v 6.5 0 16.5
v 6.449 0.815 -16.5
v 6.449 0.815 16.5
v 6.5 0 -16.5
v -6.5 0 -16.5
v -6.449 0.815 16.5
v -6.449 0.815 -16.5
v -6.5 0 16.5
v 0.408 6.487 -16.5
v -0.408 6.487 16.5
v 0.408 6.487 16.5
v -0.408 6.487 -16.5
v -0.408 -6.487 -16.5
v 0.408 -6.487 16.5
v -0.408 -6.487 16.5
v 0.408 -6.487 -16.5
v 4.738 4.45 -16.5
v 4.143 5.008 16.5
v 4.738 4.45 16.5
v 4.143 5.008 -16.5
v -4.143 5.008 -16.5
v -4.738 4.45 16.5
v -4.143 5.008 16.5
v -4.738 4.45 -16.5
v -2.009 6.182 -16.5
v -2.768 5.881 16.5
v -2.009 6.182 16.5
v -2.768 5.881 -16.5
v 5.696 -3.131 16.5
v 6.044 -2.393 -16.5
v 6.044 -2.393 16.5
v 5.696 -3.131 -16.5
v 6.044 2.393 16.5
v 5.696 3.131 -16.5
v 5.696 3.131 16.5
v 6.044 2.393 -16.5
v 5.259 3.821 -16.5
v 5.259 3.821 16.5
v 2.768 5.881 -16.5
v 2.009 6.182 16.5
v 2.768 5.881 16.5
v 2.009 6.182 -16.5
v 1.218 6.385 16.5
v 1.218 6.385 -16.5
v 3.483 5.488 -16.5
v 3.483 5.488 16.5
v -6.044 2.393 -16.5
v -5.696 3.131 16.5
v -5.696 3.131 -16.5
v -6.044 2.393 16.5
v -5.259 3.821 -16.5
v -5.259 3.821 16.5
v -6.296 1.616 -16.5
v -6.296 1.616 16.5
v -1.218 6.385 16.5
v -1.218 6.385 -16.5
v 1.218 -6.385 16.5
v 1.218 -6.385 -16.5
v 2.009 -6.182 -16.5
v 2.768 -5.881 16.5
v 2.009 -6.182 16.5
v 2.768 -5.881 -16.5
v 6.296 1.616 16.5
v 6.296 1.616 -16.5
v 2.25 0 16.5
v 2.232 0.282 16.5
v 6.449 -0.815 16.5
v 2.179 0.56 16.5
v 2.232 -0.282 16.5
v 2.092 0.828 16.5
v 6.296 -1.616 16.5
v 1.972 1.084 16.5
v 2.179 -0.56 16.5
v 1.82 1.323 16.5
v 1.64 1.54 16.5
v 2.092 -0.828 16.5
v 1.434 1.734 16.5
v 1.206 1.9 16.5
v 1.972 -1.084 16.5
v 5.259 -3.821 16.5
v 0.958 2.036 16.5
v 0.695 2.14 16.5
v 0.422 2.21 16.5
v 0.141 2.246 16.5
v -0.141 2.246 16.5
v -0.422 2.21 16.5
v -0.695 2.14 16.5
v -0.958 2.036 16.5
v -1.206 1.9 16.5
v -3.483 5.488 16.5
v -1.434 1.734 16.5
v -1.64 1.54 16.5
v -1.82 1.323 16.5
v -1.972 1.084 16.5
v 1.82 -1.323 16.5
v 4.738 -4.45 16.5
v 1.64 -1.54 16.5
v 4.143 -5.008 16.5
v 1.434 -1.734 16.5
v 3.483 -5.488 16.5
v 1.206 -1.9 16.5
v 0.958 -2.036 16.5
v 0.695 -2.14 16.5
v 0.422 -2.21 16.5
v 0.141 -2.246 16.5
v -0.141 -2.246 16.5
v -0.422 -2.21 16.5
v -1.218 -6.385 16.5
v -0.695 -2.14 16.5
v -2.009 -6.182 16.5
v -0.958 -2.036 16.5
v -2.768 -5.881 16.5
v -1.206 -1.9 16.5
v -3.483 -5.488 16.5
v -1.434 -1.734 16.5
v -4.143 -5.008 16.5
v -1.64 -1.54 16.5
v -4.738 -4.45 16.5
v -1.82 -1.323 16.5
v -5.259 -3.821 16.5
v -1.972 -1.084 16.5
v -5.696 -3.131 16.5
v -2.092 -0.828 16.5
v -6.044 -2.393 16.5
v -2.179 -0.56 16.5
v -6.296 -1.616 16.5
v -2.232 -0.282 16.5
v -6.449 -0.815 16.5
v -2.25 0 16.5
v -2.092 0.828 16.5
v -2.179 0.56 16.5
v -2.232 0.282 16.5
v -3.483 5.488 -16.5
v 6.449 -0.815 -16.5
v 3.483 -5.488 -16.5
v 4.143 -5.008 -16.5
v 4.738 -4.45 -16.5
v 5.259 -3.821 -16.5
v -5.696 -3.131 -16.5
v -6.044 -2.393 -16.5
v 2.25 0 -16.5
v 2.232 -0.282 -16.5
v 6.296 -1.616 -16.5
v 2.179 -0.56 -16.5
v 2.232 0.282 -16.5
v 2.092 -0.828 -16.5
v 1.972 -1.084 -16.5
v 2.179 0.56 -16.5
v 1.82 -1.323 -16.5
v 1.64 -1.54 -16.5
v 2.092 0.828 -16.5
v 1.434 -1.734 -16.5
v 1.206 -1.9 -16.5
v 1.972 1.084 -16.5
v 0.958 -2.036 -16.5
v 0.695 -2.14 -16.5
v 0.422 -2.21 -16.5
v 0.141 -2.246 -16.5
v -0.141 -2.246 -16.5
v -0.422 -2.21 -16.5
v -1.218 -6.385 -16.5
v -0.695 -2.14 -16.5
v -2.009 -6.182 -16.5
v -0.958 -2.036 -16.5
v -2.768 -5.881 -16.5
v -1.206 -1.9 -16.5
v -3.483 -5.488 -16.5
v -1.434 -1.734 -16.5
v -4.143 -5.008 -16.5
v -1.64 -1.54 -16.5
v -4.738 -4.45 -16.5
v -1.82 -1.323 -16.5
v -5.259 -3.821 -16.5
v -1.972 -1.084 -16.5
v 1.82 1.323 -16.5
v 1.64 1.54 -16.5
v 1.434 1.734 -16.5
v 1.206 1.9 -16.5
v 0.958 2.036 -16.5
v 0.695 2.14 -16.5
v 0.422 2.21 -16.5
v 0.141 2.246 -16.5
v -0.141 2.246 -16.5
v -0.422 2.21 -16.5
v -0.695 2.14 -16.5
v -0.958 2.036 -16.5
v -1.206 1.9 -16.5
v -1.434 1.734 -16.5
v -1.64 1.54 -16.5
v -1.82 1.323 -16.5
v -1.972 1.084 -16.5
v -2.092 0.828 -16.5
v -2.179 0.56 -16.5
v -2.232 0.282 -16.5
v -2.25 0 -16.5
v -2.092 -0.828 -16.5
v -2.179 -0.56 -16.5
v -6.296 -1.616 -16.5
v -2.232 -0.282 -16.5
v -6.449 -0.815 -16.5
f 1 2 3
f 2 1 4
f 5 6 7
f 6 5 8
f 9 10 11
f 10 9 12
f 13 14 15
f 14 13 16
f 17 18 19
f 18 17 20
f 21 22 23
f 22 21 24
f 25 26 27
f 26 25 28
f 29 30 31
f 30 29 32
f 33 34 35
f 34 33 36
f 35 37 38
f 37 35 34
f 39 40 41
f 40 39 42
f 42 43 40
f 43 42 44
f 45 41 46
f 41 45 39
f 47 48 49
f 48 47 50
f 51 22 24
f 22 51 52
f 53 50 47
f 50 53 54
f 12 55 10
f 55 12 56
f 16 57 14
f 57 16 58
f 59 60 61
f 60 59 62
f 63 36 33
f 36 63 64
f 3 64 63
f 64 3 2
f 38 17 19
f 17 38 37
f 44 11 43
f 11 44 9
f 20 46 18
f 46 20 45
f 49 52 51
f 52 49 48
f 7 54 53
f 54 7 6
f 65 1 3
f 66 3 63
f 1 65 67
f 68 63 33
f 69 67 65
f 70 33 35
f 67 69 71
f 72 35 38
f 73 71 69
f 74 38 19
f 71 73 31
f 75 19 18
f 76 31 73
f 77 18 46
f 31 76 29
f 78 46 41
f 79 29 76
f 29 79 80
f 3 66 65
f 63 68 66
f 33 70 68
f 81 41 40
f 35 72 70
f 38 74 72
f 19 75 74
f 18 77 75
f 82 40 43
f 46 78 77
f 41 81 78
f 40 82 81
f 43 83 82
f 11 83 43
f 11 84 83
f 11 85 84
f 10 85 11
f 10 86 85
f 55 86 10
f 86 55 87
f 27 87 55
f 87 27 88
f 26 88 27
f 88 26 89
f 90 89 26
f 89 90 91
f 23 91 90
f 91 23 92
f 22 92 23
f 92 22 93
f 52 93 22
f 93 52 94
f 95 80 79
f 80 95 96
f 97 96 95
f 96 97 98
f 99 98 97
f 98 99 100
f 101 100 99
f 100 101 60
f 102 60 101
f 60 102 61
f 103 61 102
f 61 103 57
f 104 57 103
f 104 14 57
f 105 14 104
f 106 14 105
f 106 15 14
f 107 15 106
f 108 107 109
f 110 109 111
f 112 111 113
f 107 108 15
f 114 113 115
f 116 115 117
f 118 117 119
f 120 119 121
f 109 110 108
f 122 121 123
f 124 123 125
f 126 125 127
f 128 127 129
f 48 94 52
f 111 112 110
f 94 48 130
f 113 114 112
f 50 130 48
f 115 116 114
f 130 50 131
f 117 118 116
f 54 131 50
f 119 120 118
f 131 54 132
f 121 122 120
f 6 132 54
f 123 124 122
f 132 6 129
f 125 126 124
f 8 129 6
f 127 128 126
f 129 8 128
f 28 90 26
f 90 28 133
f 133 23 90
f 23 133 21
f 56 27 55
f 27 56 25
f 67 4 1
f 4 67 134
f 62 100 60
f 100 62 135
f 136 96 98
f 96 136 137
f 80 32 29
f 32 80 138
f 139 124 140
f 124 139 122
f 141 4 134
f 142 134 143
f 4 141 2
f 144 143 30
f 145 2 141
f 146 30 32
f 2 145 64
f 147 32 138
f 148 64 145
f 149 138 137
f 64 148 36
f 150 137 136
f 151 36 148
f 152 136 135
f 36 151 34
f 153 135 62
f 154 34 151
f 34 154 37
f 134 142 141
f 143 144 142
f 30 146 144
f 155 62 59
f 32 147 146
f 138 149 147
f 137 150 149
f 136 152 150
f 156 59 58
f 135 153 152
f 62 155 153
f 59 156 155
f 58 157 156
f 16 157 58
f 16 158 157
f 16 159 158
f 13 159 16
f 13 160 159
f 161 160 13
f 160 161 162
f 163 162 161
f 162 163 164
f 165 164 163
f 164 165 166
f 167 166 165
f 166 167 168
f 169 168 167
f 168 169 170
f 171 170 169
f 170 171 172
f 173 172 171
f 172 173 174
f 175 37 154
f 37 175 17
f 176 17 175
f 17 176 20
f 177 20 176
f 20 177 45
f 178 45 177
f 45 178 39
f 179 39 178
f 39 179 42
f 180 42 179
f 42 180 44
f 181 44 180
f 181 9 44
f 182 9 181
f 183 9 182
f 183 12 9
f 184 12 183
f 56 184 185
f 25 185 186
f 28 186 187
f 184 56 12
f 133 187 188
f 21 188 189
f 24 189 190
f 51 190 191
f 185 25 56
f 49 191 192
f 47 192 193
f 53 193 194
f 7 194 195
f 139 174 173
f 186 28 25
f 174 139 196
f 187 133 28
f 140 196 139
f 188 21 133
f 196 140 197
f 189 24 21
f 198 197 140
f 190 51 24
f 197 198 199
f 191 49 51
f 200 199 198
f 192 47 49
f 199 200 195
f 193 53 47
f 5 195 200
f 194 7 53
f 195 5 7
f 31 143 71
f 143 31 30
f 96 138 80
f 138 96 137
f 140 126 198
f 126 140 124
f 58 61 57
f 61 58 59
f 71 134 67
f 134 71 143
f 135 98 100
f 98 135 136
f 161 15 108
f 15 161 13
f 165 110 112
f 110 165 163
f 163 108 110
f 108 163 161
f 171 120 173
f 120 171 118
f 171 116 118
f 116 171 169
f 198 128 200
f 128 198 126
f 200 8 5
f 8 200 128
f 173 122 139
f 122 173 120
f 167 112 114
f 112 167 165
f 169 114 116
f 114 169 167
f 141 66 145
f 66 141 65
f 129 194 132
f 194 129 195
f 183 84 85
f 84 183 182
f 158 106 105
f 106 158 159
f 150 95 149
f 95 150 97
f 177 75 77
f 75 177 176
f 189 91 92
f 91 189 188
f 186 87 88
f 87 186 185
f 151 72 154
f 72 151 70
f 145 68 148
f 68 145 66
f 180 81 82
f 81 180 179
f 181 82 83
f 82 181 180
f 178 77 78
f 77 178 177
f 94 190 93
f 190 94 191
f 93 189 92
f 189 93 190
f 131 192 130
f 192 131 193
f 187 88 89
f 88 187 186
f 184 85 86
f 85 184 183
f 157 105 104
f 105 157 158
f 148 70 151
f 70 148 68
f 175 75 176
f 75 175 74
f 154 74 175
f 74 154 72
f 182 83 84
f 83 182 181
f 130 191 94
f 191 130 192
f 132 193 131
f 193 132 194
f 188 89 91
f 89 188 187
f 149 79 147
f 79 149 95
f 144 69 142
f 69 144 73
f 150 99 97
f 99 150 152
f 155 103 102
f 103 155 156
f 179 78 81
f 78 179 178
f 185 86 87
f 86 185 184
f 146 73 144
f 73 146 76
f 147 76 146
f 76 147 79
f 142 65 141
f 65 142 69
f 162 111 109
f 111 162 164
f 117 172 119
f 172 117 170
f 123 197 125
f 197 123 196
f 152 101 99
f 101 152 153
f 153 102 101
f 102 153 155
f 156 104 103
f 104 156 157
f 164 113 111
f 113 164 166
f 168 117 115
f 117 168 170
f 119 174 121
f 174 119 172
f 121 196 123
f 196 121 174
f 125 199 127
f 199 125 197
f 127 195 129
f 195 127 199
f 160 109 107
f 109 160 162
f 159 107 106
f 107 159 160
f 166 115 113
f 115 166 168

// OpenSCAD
$fn = 50;


difference() {
	union() {
		translate(v = [0, 0, -16.5000000000]) {
			cylinder(h = 33, r = 6.5000000000);
		}
	}
	union() {
		translate(v = [0, 0, -100.0000000000]) {
			cylinder(h = 200, r = 2.2500000000);
		}
	}
}
